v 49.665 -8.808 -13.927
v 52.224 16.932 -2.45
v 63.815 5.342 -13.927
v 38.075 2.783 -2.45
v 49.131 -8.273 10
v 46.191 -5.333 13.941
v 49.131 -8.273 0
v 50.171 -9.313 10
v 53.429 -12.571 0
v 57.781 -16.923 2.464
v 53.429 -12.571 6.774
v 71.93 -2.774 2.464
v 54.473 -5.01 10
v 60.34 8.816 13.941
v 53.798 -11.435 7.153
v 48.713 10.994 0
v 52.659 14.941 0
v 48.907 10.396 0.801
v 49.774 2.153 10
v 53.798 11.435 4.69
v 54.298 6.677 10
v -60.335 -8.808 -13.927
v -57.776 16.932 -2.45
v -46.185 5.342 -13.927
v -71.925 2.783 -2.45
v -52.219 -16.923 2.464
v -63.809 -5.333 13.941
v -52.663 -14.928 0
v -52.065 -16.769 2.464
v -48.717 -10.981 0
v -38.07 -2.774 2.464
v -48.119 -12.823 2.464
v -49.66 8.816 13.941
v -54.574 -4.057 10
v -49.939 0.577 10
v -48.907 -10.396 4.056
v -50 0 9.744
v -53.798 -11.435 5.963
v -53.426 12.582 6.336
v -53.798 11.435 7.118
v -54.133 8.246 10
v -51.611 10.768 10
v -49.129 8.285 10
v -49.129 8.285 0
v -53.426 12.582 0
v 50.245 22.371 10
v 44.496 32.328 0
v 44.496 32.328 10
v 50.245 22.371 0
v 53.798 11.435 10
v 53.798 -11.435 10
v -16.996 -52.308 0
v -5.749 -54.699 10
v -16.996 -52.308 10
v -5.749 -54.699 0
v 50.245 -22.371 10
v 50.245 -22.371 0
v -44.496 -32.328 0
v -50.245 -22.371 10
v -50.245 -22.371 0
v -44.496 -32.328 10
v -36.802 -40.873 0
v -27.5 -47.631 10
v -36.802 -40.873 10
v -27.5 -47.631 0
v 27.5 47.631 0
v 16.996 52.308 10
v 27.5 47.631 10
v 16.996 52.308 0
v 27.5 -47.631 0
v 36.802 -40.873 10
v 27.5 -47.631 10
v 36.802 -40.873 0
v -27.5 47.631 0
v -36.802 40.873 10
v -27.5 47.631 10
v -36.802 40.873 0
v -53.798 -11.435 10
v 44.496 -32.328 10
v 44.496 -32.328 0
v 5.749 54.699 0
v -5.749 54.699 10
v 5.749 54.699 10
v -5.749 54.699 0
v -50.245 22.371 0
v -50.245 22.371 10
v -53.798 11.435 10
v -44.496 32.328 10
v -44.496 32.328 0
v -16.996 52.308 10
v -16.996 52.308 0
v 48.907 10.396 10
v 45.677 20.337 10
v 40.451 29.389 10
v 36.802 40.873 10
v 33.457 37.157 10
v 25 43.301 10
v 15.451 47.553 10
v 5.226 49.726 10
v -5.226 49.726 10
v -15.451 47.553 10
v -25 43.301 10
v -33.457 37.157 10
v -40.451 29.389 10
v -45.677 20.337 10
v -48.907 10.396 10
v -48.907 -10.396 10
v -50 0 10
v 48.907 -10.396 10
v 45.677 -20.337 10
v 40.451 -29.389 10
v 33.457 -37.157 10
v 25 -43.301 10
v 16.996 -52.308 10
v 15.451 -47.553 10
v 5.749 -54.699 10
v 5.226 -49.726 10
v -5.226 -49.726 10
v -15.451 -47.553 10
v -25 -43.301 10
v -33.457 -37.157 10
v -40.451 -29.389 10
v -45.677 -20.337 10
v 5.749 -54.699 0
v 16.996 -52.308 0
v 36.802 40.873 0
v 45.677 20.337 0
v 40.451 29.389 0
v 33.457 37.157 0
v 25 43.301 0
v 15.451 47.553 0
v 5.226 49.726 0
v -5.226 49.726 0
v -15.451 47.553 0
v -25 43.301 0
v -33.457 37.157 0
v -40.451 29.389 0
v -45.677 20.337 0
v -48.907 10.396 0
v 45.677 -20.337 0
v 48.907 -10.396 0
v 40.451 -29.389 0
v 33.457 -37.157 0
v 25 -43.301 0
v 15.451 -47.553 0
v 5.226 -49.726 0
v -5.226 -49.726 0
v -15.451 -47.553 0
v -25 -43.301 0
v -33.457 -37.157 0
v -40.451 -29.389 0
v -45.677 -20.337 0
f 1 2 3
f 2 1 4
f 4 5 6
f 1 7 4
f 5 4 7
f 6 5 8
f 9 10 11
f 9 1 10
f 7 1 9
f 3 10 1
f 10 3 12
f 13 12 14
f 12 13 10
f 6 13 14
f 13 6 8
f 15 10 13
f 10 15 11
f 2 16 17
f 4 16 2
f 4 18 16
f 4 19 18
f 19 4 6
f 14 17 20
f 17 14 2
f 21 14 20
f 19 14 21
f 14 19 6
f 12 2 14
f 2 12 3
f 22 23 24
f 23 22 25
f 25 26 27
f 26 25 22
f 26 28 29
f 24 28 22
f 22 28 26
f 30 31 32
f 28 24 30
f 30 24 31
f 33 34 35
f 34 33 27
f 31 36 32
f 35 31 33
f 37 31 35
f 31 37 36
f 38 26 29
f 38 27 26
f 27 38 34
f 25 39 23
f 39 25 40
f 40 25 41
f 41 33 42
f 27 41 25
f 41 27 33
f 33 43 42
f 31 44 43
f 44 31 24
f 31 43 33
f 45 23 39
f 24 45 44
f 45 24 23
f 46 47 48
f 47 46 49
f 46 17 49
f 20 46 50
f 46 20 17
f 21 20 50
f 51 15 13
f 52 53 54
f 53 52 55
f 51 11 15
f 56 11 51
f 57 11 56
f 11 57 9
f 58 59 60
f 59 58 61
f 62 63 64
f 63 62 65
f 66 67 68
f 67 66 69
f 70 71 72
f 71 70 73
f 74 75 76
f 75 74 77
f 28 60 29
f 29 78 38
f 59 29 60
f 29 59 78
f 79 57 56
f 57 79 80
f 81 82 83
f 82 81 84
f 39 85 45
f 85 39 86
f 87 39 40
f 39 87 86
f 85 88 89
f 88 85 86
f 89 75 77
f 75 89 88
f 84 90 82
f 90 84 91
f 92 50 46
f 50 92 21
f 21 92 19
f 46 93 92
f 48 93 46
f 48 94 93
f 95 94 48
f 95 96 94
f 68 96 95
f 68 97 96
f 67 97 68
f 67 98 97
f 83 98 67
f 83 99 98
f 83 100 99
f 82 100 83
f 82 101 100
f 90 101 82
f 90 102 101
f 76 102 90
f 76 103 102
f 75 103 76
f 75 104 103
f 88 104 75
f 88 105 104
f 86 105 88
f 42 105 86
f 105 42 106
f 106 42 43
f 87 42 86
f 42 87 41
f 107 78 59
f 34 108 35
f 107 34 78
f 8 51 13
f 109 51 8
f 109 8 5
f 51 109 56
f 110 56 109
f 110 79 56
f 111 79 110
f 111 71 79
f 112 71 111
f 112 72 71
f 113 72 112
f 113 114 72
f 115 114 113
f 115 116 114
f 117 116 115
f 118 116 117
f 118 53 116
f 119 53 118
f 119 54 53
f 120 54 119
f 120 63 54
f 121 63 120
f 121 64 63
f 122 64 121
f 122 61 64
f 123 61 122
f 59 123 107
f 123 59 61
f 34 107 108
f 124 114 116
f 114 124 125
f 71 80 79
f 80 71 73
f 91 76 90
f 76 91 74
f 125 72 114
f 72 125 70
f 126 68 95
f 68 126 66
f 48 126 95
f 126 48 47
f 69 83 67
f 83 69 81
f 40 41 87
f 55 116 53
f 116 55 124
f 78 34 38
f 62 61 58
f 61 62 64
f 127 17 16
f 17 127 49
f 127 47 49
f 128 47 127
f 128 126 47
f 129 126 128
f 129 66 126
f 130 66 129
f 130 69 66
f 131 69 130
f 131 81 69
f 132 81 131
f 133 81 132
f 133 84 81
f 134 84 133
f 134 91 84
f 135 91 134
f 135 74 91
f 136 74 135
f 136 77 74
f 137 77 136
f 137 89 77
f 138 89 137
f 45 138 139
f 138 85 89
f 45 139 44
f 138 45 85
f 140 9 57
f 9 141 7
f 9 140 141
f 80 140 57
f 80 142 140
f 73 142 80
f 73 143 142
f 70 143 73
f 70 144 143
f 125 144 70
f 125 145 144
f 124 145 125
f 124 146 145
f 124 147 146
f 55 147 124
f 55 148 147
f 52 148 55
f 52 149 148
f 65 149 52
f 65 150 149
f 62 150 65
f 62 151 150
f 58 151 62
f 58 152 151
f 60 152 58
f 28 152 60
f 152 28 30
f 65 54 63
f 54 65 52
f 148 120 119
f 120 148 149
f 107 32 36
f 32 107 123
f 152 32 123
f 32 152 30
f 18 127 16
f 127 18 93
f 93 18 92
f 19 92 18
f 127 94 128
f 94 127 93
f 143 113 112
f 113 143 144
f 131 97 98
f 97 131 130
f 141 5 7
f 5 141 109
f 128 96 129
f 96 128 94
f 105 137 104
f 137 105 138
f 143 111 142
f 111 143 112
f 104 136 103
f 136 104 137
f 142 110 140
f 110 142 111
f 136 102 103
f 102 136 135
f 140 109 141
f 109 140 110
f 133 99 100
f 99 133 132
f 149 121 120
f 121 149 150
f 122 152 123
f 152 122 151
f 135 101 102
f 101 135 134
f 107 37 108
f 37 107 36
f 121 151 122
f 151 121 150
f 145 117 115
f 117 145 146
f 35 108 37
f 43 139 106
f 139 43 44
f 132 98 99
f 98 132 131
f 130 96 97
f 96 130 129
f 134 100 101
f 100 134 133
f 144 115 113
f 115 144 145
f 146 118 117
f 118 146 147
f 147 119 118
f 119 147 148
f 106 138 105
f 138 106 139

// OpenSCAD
module subdivided_cube(size=1, center=false, dim=5) {
    // Standardize size to a 3-element vector [x, y, z]
    s = is_list(size) ? size : [size, size, size];
    
    // Calculate the translation offset if center is true
    offset = center ? [-s[0]/2, -s[1]/2, -s[2]/2] : [0, 0, 0];
    
    step_x = s[0] / dim;
    step_y = s[1] / dim;
    step_z = s[2] / dim;

    translate(offset)
    for (x = [0 : step_x : s[0] - 0.001]) {
        for (y = [0 : step_y : s[1] - 0.001]) {
            for (z = [0 : step_z : s[2] - 0.001]) {
                // 0.01 overlap ensures a single manifold object
                translate([x, y, z]) 
                    cube([step_x + 0.01, step_y + 0.01, step_z + 0.01]);
            }
        }
    }
}

union(){
    translate([30+25,0,0])rotate([35,0,45])subdivided_cube(20,center=true);
    translate([-30-25,0,0])rotate([35,0,45])subdivided_cube(20,center=true);
    difference(){
        cylinder(r=55,h=10);
        translate([0,0,-1]) cylinder(r=50,h=12,$fn=30);
    }
}
